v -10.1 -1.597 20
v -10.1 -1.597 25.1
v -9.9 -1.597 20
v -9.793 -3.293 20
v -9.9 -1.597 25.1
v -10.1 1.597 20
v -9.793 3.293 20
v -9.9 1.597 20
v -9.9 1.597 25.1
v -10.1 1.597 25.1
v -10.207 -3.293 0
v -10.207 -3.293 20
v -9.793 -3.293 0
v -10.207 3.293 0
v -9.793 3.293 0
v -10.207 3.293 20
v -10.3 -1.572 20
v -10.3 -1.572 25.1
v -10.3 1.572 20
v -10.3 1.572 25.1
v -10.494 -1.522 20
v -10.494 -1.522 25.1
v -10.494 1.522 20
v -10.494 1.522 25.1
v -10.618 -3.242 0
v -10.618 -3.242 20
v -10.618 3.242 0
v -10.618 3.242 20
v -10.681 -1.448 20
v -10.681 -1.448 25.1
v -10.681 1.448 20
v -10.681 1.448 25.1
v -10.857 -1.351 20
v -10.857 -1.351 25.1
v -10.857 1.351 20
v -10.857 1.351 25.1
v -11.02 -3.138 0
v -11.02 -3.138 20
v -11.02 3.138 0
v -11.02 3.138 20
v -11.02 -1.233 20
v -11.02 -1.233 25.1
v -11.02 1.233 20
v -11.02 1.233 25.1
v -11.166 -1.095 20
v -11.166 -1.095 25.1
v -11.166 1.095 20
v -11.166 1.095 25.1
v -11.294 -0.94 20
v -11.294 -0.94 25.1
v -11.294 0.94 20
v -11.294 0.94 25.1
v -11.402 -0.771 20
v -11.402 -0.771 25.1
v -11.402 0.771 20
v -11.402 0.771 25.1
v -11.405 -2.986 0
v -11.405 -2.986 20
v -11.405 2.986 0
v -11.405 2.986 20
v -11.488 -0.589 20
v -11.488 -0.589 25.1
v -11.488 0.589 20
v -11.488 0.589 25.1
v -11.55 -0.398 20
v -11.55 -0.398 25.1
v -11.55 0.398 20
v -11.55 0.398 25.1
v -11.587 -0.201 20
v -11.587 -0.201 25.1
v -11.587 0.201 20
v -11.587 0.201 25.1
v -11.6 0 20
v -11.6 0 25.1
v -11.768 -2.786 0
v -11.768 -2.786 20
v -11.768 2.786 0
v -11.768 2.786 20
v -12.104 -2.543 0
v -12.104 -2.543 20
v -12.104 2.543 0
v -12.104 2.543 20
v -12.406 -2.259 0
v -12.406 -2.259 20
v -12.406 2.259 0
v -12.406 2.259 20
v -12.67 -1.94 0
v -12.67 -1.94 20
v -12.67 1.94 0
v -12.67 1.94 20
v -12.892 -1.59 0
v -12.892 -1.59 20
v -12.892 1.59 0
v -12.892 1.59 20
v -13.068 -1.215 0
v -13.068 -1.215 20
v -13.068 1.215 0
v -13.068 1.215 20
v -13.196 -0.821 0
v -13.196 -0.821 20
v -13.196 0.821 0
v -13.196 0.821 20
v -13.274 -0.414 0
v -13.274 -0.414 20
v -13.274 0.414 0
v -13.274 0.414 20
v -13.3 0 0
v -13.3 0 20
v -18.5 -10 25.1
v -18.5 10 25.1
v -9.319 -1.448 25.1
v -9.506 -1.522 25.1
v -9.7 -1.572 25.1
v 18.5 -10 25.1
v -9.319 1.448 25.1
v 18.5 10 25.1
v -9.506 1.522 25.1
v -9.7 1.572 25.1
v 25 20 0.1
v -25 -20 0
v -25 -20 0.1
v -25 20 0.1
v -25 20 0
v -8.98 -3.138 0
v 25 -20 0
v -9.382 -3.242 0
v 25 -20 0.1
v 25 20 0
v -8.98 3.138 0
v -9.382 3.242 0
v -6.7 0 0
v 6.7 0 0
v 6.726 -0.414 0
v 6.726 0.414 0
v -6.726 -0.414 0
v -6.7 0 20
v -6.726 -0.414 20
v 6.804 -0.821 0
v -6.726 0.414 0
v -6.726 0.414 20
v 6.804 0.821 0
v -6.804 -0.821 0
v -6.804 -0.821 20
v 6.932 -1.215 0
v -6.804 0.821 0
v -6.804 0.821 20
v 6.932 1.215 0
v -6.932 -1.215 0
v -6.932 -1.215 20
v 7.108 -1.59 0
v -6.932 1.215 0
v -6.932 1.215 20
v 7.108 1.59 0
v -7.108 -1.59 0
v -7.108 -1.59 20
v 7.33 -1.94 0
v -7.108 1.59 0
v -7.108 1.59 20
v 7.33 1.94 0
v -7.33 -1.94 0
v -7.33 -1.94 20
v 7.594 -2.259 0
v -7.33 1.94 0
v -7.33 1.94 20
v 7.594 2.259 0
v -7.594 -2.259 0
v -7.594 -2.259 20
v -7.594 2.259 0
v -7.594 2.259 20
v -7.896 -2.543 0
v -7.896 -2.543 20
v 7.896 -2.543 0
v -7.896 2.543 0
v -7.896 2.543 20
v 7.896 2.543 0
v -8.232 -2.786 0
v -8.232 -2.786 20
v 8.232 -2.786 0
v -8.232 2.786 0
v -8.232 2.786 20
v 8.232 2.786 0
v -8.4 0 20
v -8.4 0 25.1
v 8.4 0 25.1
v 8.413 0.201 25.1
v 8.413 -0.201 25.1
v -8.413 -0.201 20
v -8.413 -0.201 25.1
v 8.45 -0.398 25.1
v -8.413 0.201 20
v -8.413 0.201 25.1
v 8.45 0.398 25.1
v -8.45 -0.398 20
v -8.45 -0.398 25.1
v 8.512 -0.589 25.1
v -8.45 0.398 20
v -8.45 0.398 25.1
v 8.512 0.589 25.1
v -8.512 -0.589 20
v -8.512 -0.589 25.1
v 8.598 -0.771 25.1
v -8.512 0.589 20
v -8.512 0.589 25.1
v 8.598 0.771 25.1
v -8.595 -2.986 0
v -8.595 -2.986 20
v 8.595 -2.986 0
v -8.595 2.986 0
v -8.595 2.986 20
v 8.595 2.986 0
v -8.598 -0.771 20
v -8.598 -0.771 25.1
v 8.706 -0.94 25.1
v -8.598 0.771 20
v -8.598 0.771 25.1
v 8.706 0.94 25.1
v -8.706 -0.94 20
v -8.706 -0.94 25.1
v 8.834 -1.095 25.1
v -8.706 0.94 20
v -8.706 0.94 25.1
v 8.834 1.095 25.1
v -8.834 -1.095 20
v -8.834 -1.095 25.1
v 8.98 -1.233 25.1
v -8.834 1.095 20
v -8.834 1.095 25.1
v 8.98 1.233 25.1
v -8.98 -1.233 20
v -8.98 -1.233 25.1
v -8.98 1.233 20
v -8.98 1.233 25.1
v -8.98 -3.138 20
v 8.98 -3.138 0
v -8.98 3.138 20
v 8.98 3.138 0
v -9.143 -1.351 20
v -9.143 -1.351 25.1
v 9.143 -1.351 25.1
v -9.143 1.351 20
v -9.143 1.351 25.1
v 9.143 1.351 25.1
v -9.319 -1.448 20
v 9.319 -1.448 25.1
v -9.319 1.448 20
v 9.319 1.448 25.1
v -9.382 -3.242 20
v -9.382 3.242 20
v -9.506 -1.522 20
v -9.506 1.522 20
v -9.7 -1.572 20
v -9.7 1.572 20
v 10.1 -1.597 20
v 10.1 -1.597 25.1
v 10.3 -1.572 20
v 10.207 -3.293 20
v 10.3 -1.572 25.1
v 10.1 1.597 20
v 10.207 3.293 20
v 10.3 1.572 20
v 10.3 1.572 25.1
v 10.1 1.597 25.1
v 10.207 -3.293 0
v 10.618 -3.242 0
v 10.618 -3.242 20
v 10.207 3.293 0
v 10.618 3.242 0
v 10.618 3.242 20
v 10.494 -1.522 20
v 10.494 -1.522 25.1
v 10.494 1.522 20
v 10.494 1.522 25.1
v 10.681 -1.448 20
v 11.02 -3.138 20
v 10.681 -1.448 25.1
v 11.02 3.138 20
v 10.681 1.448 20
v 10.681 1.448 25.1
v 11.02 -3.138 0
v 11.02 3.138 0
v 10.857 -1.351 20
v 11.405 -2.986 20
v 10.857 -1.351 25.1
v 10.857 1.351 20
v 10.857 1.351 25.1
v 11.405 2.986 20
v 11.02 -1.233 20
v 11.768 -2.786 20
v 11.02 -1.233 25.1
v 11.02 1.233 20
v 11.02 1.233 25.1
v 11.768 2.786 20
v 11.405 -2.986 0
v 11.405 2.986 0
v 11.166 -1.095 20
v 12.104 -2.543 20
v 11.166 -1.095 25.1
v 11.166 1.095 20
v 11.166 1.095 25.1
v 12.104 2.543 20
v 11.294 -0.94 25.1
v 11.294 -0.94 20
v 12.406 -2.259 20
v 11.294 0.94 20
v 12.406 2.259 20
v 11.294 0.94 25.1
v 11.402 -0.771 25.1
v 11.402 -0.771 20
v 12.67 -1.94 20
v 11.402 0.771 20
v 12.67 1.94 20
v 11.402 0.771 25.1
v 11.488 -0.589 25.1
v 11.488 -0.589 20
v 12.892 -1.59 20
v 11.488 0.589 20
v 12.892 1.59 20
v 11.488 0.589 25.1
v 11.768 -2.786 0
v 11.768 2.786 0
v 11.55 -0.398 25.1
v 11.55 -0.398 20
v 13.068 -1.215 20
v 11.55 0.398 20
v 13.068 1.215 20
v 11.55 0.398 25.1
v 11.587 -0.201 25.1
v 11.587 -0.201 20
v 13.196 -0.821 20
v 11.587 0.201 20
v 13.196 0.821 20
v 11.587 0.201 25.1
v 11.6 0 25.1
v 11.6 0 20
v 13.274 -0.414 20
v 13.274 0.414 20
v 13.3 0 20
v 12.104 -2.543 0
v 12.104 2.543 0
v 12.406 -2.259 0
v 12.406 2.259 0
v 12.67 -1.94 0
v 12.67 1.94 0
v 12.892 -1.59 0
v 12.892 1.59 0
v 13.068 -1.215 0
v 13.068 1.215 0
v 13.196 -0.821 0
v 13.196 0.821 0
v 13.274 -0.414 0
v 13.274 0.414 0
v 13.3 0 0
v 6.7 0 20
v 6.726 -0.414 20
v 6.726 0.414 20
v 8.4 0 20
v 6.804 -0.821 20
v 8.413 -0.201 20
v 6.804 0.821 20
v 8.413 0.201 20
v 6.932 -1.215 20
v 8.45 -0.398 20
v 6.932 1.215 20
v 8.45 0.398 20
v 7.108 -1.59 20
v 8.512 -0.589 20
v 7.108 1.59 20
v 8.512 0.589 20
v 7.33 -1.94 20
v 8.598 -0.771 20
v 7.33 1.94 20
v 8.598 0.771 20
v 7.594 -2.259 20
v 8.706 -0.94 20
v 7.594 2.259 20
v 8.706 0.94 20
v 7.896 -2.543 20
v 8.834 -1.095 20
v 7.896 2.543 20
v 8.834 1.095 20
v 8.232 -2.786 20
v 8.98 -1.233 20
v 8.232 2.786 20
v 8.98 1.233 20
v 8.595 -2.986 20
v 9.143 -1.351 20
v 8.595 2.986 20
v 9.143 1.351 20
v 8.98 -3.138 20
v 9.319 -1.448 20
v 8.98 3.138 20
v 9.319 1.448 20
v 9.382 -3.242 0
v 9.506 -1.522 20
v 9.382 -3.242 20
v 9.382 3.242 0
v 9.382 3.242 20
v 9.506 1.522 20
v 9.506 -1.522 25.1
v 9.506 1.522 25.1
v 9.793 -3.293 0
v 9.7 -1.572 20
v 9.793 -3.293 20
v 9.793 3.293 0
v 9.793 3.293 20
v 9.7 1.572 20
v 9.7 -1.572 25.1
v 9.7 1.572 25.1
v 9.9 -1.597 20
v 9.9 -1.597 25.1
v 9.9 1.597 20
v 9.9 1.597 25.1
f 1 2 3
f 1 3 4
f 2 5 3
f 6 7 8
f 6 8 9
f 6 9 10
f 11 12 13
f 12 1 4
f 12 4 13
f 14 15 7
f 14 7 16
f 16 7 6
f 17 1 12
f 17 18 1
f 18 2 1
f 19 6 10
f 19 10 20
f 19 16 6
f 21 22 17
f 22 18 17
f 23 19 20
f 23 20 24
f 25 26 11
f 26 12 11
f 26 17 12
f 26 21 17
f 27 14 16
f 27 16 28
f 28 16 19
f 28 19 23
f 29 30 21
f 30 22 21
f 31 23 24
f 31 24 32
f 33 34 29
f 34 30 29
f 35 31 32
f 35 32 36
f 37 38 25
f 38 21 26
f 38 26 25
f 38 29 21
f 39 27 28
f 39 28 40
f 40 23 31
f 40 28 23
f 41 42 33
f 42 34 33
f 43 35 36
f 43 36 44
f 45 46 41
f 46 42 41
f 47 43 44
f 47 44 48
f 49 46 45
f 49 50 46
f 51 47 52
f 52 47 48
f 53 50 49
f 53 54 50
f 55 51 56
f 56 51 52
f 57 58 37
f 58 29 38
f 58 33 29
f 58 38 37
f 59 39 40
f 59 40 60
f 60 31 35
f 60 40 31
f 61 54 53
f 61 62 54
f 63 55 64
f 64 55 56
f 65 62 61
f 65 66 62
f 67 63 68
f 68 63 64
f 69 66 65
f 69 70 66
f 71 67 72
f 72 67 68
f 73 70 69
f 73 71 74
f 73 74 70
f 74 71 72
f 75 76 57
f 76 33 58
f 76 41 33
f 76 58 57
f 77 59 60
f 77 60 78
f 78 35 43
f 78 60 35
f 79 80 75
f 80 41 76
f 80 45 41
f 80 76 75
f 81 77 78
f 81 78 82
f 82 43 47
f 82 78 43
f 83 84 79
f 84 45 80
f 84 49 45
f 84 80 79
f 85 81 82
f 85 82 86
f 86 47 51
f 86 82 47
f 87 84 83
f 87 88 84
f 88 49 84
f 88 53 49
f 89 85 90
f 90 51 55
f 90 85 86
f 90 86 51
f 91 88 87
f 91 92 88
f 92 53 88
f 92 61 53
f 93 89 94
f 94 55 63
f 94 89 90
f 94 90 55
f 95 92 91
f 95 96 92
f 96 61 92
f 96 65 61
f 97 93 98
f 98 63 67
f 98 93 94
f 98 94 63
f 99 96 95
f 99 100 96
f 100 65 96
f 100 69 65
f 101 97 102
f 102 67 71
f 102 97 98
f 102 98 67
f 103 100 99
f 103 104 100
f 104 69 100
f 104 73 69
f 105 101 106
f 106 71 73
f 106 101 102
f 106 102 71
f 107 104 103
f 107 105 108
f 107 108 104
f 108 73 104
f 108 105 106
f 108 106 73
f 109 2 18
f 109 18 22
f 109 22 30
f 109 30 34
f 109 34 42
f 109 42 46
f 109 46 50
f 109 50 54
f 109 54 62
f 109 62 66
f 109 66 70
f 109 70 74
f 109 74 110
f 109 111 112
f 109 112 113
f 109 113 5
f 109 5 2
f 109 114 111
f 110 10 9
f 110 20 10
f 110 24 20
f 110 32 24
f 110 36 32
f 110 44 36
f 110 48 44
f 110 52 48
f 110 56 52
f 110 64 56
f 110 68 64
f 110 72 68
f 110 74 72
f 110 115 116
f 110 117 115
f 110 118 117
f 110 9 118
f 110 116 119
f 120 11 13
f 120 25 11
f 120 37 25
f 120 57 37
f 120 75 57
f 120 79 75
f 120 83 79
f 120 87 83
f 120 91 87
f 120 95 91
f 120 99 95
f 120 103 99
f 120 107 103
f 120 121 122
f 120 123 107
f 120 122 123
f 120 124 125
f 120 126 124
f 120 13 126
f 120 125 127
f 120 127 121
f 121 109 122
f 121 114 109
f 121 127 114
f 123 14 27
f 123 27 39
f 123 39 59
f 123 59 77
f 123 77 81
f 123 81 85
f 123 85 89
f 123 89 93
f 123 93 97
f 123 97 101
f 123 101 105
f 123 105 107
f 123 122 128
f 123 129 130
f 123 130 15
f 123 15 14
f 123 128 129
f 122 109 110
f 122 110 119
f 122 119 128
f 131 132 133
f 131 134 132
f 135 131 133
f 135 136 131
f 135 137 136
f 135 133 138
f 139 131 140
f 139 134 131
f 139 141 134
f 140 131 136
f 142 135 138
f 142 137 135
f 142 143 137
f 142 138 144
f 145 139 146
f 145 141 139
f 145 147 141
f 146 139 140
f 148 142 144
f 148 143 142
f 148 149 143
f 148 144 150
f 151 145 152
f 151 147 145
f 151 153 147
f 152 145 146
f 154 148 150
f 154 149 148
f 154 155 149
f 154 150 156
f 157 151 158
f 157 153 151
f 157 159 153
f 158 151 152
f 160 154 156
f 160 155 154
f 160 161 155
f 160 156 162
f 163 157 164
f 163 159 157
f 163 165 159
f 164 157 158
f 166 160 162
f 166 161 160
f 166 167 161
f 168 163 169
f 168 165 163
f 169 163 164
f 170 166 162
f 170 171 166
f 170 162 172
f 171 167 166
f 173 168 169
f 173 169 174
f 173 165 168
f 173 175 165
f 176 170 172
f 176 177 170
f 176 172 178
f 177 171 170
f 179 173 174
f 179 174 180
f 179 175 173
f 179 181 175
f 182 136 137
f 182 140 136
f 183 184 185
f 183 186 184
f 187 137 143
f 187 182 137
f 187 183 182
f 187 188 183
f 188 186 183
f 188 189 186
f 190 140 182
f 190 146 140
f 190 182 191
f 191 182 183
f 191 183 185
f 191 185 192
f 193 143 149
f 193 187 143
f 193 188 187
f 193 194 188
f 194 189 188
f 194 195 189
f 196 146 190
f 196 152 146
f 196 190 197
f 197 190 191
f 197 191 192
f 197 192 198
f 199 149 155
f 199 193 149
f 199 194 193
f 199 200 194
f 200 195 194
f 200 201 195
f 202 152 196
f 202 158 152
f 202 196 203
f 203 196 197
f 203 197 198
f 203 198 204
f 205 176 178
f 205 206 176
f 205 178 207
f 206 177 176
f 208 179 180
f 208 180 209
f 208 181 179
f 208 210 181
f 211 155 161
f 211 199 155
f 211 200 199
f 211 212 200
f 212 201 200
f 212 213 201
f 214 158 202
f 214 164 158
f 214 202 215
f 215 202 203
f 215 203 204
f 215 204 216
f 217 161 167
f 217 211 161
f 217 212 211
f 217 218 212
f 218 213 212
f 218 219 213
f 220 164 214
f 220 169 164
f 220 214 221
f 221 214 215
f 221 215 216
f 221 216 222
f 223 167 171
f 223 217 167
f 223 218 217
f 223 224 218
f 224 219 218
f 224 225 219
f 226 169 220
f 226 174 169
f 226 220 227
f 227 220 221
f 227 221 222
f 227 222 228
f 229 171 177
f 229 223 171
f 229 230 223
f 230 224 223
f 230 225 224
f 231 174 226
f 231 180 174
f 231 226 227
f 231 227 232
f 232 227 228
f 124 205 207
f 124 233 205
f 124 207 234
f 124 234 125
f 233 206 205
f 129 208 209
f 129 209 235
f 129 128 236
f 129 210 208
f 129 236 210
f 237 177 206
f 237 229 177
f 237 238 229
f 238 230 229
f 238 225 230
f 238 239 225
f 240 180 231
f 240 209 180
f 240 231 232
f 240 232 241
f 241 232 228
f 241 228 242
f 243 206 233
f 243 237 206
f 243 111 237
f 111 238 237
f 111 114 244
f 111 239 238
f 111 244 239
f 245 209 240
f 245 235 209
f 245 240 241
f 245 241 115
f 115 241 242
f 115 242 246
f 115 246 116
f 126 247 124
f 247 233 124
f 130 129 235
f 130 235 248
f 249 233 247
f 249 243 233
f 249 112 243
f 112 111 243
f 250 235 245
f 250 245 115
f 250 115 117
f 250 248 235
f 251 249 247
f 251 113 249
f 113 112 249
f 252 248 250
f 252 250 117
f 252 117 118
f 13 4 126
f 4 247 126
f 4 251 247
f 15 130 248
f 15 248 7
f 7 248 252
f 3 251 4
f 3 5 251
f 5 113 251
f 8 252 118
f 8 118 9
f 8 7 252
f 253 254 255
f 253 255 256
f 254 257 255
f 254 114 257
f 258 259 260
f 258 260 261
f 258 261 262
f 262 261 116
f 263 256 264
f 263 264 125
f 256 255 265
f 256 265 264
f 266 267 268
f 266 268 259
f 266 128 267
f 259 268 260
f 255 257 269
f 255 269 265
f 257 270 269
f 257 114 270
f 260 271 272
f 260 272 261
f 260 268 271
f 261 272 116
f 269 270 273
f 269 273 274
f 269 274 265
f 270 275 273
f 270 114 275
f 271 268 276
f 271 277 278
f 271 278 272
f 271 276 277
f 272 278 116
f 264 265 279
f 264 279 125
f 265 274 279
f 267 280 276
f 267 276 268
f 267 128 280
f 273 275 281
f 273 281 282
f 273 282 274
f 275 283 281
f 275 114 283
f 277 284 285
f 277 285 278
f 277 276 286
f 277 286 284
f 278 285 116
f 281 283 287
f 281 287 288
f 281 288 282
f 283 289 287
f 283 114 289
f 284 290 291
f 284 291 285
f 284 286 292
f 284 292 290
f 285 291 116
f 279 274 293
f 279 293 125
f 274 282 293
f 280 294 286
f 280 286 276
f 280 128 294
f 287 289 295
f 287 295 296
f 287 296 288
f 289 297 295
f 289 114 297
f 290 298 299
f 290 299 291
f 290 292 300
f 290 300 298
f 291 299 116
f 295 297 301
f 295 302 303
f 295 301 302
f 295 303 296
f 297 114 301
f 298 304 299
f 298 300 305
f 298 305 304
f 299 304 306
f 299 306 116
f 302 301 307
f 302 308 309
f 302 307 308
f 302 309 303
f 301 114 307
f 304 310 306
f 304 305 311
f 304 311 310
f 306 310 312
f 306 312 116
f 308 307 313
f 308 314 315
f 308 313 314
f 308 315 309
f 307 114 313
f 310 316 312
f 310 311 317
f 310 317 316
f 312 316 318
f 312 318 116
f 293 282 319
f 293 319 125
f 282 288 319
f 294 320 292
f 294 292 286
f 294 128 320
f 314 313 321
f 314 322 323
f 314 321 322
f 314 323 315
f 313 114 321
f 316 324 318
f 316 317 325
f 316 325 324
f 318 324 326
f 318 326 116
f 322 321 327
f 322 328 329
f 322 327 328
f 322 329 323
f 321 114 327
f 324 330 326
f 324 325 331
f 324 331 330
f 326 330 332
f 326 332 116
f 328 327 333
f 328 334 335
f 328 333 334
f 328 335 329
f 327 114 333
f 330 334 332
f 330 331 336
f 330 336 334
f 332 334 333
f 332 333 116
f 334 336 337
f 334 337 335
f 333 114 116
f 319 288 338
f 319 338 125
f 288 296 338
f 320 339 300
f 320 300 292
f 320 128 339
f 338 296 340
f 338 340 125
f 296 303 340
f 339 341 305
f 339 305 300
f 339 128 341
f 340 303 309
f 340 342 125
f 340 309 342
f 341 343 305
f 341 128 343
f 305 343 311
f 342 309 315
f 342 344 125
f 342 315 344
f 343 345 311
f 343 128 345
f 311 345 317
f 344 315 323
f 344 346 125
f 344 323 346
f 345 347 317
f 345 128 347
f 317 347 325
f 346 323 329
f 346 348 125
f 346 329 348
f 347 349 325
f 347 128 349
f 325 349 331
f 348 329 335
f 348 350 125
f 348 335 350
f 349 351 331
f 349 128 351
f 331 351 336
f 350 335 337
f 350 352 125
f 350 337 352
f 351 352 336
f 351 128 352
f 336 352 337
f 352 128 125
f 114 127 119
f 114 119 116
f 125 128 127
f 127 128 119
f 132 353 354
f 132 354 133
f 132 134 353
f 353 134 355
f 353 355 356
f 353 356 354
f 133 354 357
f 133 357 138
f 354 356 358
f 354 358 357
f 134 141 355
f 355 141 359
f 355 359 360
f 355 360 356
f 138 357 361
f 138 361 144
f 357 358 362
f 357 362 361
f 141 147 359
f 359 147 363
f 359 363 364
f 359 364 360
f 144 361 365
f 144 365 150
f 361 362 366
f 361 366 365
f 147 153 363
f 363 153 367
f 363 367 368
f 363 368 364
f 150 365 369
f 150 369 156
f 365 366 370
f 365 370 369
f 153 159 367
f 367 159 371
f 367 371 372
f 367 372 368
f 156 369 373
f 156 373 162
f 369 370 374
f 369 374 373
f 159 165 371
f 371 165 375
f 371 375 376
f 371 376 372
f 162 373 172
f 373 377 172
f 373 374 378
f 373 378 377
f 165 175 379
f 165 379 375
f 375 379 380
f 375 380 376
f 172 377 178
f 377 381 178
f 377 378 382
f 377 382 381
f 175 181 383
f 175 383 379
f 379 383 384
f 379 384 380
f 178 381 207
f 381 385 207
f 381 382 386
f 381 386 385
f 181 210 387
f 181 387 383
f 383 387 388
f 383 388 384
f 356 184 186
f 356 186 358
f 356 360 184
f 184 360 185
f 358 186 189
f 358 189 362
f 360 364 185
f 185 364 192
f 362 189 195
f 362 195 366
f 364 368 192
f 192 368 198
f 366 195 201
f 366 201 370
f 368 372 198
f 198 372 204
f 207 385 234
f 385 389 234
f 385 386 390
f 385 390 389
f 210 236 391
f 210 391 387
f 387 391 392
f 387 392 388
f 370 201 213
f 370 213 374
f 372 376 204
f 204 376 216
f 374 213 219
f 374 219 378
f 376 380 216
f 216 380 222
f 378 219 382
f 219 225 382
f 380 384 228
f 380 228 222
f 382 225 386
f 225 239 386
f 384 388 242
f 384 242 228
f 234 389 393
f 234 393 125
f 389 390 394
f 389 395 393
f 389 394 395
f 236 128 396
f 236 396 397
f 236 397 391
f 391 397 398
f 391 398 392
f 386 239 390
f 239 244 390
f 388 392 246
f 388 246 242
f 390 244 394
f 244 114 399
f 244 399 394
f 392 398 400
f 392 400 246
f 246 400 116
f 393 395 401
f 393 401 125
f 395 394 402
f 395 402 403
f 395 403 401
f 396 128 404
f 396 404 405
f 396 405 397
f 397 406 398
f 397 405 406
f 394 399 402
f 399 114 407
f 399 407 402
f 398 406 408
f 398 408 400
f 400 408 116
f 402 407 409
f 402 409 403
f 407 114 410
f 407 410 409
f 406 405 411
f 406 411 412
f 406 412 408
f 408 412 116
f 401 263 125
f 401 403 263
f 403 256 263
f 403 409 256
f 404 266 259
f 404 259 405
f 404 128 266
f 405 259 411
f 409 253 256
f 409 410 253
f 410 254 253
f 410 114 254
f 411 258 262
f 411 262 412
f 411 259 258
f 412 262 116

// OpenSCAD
include <../../parameters.scad>

difference(){
    hull(){
        translate([-25, -20, 0]) cube([50, 40, 0.1]);
        translate([-37/2, -10, 25]) cube([37, 20, 0.1]);
}
    translate([-10, 0, 0]){
        cylinder(d = M3_nut_diameter, h = 25-5, $fn = 50);
        cylinder(d = M3_screw_diameter, h = 32, $fn = 50);
    }
    translate([10, 0, 0]){
        cylinder(d = M3_nut_diameter, h = 25-5, $fn = 50);
        cylinder(d = M3_screw_diameter, h = 32, $fn = 50);
    }
}
